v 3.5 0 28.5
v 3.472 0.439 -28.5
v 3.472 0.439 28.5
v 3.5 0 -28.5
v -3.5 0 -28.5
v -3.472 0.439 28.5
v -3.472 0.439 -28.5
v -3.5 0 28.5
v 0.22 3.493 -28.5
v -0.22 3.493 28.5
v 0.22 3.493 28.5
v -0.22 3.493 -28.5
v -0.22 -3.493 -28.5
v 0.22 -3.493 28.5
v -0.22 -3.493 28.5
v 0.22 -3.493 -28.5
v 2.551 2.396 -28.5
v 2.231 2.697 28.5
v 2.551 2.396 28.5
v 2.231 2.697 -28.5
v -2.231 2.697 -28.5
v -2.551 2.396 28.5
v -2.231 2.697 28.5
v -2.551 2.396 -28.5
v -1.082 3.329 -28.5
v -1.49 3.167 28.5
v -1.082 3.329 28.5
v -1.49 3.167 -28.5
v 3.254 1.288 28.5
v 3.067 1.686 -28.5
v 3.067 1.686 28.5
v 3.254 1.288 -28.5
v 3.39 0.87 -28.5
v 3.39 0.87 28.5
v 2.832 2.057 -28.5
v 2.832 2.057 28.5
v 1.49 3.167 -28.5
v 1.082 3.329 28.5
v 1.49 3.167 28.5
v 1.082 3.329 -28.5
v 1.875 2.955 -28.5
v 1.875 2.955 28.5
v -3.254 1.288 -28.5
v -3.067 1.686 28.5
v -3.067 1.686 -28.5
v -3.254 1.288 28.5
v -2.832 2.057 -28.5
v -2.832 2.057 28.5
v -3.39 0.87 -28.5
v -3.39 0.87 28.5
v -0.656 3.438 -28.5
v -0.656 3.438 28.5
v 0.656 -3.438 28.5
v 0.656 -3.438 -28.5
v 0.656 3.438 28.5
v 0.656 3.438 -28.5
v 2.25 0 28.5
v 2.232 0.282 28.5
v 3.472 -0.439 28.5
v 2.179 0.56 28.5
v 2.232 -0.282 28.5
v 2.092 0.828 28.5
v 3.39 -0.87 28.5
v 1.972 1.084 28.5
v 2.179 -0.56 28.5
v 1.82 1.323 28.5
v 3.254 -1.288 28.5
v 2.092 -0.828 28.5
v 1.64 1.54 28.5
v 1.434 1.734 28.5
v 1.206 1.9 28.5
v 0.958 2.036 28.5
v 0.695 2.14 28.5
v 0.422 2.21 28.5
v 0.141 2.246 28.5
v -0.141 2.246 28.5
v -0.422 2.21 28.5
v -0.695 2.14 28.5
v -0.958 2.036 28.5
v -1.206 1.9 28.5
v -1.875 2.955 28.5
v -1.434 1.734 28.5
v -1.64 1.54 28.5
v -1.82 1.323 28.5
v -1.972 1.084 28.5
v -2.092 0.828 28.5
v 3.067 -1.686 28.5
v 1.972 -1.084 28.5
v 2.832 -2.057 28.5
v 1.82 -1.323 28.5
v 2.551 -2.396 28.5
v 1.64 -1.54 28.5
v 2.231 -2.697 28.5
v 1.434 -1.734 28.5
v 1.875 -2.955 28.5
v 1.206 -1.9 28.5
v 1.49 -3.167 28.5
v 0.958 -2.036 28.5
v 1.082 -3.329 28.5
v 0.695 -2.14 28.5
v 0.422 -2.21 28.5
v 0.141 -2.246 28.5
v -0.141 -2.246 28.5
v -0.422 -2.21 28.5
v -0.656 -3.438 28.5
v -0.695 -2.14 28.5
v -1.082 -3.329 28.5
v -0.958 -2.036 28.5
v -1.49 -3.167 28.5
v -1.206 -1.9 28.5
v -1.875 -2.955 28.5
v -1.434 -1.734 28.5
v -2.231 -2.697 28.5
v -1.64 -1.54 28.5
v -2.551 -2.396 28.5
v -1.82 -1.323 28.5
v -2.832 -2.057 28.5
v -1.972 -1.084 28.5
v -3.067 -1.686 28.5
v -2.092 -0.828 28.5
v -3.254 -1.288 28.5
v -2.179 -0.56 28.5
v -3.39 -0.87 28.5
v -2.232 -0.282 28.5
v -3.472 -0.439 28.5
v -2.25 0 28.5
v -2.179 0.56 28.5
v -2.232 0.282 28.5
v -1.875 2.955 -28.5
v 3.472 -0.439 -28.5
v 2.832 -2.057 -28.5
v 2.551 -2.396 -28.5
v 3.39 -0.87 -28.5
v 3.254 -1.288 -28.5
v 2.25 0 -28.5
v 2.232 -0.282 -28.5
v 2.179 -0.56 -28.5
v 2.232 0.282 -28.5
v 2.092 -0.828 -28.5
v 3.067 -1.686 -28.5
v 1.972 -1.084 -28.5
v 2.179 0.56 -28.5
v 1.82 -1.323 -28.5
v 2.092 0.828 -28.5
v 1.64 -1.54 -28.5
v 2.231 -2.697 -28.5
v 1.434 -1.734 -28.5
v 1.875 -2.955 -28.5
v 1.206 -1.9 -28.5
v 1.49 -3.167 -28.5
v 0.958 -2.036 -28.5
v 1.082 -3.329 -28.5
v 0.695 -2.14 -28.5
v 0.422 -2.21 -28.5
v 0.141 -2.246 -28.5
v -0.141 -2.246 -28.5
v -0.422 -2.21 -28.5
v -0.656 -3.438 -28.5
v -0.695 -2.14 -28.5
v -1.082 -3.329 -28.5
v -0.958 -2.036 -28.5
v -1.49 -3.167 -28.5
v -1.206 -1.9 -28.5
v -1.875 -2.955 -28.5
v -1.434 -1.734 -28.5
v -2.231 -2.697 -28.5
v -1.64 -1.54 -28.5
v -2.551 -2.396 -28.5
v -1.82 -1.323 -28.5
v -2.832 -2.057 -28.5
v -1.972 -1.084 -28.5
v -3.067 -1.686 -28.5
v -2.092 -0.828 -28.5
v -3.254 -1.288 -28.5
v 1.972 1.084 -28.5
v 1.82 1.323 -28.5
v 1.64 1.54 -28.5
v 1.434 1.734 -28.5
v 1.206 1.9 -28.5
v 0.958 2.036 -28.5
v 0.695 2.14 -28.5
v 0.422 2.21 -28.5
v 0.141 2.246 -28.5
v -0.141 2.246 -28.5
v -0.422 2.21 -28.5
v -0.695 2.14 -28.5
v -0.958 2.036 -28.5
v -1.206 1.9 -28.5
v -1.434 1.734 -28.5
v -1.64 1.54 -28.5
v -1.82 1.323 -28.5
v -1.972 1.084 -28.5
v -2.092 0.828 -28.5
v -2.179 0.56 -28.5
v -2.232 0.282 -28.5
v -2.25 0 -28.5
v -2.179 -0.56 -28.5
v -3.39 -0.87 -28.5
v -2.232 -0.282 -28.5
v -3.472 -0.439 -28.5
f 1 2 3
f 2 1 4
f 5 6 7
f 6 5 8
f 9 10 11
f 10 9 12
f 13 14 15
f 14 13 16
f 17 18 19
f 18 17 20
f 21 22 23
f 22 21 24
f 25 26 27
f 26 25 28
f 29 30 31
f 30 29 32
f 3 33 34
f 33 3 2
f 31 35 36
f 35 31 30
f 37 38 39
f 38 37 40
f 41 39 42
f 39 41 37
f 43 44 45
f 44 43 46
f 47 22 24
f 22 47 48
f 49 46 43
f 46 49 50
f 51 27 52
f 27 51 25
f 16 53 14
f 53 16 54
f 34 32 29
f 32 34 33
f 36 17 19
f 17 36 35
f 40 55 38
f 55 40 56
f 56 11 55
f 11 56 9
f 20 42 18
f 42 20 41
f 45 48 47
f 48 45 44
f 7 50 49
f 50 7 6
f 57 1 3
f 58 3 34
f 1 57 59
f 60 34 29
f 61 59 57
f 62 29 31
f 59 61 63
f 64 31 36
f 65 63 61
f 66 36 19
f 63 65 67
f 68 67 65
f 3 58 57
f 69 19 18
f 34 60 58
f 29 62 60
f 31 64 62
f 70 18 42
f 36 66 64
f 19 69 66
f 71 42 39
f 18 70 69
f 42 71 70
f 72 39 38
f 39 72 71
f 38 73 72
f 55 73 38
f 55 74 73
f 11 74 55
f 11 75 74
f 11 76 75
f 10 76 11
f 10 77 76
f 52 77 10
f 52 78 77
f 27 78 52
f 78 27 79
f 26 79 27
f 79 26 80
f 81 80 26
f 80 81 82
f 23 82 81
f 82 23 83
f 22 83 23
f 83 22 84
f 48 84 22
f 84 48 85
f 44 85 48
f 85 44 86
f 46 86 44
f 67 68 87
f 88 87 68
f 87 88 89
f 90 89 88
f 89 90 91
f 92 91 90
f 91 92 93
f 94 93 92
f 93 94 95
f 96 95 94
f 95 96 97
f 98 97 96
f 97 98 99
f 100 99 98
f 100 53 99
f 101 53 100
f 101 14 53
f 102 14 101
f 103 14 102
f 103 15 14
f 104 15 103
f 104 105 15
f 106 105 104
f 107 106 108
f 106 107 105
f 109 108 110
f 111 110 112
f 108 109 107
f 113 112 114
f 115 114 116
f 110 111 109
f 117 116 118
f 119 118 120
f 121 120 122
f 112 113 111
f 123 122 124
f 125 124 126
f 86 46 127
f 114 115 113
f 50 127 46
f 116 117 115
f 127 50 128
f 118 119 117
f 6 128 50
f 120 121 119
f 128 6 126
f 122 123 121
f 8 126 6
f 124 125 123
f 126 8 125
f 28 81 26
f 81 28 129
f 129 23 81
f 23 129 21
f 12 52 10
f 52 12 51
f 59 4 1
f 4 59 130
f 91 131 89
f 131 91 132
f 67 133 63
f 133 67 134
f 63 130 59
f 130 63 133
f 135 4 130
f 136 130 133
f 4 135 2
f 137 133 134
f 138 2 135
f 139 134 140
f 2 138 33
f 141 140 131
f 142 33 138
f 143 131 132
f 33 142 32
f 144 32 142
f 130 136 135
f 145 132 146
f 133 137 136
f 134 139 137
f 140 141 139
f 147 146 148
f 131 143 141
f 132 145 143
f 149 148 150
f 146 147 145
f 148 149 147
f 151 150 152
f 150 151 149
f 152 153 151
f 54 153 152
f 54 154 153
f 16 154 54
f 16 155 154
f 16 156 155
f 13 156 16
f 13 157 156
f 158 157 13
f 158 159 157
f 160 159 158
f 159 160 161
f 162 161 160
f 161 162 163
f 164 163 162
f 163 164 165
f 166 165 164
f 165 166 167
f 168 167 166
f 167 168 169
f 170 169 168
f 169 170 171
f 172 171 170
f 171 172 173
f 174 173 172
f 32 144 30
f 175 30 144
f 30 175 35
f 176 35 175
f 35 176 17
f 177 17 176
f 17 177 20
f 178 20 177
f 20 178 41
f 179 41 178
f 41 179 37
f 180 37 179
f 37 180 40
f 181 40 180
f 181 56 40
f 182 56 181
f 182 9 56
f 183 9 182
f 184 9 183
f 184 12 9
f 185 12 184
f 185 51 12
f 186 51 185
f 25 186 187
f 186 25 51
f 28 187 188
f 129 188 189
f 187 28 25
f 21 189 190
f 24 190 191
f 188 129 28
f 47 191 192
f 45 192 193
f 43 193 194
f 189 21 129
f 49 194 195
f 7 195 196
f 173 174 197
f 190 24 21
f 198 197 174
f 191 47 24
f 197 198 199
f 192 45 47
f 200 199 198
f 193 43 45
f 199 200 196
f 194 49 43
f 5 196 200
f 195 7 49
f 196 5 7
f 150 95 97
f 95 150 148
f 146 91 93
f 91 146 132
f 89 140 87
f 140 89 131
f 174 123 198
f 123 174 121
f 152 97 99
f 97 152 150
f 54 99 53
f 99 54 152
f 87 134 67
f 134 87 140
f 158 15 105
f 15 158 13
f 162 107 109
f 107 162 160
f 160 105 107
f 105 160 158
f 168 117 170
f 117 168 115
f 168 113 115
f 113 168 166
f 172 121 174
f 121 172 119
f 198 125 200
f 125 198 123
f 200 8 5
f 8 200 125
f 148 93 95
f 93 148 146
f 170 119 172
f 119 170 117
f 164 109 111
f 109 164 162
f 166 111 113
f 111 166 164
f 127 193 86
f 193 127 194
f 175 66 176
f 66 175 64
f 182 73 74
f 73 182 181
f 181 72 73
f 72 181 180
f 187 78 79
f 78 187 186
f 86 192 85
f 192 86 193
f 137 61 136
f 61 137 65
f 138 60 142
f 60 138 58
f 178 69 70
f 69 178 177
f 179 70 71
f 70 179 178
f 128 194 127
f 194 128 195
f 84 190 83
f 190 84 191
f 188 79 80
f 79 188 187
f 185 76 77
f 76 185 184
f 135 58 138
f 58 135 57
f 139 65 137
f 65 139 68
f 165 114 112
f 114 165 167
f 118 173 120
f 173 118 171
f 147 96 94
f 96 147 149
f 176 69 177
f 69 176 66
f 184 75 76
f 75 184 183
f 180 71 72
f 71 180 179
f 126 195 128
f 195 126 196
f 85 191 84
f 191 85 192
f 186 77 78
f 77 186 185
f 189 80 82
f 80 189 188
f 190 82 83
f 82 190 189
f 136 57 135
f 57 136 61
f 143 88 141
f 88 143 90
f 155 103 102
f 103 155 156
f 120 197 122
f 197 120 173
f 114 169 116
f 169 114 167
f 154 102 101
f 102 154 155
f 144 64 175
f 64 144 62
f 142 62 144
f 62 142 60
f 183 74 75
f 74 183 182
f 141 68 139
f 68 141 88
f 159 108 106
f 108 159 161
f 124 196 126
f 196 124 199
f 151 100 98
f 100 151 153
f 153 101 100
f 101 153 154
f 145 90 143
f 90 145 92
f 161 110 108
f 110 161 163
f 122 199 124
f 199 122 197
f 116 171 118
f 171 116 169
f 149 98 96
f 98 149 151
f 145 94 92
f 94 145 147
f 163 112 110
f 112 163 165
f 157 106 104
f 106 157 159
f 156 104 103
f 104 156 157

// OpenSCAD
$fn = 50;


difference() {
	union() {
		translate(v = [0, 0, -28.5000000000]) {
			cylinder(h = 57, r = 3.5000000000);
		}
	}
	union() {
		translate(v = [0, 0, -100.0000000000]) {
			cylinder(h = 200, r = 2.2500000000);
		}
	}
}
